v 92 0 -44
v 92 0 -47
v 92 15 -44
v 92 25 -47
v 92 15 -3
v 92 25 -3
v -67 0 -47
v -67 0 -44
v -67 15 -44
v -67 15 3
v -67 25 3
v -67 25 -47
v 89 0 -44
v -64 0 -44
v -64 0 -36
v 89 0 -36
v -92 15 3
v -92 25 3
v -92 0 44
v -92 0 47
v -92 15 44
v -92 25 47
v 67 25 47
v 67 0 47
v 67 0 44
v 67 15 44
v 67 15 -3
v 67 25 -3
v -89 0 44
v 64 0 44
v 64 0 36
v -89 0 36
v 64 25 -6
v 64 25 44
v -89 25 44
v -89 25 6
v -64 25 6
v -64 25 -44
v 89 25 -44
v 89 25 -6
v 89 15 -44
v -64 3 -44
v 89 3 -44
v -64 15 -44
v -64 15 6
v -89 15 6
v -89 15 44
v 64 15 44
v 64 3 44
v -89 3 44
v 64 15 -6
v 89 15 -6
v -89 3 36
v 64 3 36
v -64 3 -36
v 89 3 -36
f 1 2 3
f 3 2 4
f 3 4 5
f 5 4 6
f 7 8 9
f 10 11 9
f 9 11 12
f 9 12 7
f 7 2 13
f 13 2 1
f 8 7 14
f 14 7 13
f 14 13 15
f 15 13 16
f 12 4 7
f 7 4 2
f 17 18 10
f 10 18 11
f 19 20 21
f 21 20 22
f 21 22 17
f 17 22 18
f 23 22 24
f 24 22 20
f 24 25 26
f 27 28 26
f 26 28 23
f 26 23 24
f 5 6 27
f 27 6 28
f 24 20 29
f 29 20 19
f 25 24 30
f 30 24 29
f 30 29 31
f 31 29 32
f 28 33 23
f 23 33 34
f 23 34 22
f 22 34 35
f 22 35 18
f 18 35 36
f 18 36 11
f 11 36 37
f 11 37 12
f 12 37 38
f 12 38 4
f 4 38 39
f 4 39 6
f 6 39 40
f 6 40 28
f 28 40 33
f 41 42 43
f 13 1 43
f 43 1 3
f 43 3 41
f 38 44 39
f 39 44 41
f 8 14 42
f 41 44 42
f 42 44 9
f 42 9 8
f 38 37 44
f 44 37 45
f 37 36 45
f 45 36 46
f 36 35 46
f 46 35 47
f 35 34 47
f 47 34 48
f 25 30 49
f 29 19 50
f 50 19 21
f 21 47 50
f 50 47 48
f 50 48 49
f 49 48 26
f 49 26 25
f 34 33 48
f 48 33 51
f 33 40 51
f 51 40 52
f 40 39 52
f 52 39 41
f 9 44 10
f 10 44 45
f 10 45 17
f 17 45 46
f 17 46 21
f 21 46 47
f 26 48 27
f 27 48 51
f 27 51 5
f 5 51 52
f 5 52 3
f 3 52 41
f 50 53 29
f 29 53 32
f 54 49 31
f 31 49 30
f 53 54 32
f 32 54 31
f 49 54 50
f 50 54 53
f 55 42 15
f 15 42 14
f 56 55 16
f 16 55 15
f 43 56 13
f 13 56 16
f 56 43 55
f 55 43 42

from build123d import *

# Parameters (mm, degrees)
BOSS_EXTRUDE1_DEPTH = 3
BOSS_EXTRUDE2_DEPTH = 22
SKETCH3_W           = 88
SKETCH3_H           = 19.19179848
CUT_EXTRUDE1_DEPTH  = 208
SKETCH5_W           = 153
SKETCH5_H           = 8
BOSS_EXTRUDE3_DEPTH = 3


with BuildPart() as part:
    # Sketch1 → Boss-Extrude1 (new body)
    with BuildSketch(Plane(origin=(0, 0, 0), x_dir=(1, 0, 0), z_dir=(0, 1, 0))):
        Polygon((-92, -3), (-92, -47), (-67, -47), (67, -47), (67, 3), (92, 3), (92, 47), (-67, 47), (-67, -3), align=None)
    extrude(amount=BOSS_EXTRUDE1_DEPTH)

    # Sketch2 → Boss-Extrude2 (add)
    with BuildSketch(Plane(origin=(0, 3, 0), x_dir=(1, 0, 0), z_dir=(0, 1, 0))):
        Polygon((92, 3), (92, 47), (-67, 47), (-67, -3), (-92, -3), (-92, -47), (67, -47), (67, 3), align=None)
        Polygon((-64, 44), (-64, -6), (-89, -6), (-89, -44), (64, -44), (64, 6), (89, 6), (89, 44), align=None, mode=Mode.SUBTRACT)
    extrude(amount=BOSS_EXTRUDE2_DEPTH)

    # Sketch3 → Cut-Extrude1 (cut)
    with BuildSketch(Plane(origin=(92, 0, 0), x_dir=(0, 0, -1), z_dir=(1, 0, 0))):
        with Locations((0, 5.40410076)):
            Rectangle(SKETCH3_W, SKETCH3_H)
    extrude(amount=-CUT_EXTRUDE1_DEPTH, mode=Mode.SUBTRACT)

    # Sketch5 → Boss-Extrude3 (add)
    with BuildSketch(Plane.XZ):
        with Locations((-12.5, 40)):
            Rectangle(SKETCH5_W, SKETCH5_H)
        with Locations((12.5, -40)):
            Rectangle(SKETCH5_W, SKETCH5_H)
    extrude(amount=-BOSS_EXTRUDE3_DEPTH)


solid = part.part
